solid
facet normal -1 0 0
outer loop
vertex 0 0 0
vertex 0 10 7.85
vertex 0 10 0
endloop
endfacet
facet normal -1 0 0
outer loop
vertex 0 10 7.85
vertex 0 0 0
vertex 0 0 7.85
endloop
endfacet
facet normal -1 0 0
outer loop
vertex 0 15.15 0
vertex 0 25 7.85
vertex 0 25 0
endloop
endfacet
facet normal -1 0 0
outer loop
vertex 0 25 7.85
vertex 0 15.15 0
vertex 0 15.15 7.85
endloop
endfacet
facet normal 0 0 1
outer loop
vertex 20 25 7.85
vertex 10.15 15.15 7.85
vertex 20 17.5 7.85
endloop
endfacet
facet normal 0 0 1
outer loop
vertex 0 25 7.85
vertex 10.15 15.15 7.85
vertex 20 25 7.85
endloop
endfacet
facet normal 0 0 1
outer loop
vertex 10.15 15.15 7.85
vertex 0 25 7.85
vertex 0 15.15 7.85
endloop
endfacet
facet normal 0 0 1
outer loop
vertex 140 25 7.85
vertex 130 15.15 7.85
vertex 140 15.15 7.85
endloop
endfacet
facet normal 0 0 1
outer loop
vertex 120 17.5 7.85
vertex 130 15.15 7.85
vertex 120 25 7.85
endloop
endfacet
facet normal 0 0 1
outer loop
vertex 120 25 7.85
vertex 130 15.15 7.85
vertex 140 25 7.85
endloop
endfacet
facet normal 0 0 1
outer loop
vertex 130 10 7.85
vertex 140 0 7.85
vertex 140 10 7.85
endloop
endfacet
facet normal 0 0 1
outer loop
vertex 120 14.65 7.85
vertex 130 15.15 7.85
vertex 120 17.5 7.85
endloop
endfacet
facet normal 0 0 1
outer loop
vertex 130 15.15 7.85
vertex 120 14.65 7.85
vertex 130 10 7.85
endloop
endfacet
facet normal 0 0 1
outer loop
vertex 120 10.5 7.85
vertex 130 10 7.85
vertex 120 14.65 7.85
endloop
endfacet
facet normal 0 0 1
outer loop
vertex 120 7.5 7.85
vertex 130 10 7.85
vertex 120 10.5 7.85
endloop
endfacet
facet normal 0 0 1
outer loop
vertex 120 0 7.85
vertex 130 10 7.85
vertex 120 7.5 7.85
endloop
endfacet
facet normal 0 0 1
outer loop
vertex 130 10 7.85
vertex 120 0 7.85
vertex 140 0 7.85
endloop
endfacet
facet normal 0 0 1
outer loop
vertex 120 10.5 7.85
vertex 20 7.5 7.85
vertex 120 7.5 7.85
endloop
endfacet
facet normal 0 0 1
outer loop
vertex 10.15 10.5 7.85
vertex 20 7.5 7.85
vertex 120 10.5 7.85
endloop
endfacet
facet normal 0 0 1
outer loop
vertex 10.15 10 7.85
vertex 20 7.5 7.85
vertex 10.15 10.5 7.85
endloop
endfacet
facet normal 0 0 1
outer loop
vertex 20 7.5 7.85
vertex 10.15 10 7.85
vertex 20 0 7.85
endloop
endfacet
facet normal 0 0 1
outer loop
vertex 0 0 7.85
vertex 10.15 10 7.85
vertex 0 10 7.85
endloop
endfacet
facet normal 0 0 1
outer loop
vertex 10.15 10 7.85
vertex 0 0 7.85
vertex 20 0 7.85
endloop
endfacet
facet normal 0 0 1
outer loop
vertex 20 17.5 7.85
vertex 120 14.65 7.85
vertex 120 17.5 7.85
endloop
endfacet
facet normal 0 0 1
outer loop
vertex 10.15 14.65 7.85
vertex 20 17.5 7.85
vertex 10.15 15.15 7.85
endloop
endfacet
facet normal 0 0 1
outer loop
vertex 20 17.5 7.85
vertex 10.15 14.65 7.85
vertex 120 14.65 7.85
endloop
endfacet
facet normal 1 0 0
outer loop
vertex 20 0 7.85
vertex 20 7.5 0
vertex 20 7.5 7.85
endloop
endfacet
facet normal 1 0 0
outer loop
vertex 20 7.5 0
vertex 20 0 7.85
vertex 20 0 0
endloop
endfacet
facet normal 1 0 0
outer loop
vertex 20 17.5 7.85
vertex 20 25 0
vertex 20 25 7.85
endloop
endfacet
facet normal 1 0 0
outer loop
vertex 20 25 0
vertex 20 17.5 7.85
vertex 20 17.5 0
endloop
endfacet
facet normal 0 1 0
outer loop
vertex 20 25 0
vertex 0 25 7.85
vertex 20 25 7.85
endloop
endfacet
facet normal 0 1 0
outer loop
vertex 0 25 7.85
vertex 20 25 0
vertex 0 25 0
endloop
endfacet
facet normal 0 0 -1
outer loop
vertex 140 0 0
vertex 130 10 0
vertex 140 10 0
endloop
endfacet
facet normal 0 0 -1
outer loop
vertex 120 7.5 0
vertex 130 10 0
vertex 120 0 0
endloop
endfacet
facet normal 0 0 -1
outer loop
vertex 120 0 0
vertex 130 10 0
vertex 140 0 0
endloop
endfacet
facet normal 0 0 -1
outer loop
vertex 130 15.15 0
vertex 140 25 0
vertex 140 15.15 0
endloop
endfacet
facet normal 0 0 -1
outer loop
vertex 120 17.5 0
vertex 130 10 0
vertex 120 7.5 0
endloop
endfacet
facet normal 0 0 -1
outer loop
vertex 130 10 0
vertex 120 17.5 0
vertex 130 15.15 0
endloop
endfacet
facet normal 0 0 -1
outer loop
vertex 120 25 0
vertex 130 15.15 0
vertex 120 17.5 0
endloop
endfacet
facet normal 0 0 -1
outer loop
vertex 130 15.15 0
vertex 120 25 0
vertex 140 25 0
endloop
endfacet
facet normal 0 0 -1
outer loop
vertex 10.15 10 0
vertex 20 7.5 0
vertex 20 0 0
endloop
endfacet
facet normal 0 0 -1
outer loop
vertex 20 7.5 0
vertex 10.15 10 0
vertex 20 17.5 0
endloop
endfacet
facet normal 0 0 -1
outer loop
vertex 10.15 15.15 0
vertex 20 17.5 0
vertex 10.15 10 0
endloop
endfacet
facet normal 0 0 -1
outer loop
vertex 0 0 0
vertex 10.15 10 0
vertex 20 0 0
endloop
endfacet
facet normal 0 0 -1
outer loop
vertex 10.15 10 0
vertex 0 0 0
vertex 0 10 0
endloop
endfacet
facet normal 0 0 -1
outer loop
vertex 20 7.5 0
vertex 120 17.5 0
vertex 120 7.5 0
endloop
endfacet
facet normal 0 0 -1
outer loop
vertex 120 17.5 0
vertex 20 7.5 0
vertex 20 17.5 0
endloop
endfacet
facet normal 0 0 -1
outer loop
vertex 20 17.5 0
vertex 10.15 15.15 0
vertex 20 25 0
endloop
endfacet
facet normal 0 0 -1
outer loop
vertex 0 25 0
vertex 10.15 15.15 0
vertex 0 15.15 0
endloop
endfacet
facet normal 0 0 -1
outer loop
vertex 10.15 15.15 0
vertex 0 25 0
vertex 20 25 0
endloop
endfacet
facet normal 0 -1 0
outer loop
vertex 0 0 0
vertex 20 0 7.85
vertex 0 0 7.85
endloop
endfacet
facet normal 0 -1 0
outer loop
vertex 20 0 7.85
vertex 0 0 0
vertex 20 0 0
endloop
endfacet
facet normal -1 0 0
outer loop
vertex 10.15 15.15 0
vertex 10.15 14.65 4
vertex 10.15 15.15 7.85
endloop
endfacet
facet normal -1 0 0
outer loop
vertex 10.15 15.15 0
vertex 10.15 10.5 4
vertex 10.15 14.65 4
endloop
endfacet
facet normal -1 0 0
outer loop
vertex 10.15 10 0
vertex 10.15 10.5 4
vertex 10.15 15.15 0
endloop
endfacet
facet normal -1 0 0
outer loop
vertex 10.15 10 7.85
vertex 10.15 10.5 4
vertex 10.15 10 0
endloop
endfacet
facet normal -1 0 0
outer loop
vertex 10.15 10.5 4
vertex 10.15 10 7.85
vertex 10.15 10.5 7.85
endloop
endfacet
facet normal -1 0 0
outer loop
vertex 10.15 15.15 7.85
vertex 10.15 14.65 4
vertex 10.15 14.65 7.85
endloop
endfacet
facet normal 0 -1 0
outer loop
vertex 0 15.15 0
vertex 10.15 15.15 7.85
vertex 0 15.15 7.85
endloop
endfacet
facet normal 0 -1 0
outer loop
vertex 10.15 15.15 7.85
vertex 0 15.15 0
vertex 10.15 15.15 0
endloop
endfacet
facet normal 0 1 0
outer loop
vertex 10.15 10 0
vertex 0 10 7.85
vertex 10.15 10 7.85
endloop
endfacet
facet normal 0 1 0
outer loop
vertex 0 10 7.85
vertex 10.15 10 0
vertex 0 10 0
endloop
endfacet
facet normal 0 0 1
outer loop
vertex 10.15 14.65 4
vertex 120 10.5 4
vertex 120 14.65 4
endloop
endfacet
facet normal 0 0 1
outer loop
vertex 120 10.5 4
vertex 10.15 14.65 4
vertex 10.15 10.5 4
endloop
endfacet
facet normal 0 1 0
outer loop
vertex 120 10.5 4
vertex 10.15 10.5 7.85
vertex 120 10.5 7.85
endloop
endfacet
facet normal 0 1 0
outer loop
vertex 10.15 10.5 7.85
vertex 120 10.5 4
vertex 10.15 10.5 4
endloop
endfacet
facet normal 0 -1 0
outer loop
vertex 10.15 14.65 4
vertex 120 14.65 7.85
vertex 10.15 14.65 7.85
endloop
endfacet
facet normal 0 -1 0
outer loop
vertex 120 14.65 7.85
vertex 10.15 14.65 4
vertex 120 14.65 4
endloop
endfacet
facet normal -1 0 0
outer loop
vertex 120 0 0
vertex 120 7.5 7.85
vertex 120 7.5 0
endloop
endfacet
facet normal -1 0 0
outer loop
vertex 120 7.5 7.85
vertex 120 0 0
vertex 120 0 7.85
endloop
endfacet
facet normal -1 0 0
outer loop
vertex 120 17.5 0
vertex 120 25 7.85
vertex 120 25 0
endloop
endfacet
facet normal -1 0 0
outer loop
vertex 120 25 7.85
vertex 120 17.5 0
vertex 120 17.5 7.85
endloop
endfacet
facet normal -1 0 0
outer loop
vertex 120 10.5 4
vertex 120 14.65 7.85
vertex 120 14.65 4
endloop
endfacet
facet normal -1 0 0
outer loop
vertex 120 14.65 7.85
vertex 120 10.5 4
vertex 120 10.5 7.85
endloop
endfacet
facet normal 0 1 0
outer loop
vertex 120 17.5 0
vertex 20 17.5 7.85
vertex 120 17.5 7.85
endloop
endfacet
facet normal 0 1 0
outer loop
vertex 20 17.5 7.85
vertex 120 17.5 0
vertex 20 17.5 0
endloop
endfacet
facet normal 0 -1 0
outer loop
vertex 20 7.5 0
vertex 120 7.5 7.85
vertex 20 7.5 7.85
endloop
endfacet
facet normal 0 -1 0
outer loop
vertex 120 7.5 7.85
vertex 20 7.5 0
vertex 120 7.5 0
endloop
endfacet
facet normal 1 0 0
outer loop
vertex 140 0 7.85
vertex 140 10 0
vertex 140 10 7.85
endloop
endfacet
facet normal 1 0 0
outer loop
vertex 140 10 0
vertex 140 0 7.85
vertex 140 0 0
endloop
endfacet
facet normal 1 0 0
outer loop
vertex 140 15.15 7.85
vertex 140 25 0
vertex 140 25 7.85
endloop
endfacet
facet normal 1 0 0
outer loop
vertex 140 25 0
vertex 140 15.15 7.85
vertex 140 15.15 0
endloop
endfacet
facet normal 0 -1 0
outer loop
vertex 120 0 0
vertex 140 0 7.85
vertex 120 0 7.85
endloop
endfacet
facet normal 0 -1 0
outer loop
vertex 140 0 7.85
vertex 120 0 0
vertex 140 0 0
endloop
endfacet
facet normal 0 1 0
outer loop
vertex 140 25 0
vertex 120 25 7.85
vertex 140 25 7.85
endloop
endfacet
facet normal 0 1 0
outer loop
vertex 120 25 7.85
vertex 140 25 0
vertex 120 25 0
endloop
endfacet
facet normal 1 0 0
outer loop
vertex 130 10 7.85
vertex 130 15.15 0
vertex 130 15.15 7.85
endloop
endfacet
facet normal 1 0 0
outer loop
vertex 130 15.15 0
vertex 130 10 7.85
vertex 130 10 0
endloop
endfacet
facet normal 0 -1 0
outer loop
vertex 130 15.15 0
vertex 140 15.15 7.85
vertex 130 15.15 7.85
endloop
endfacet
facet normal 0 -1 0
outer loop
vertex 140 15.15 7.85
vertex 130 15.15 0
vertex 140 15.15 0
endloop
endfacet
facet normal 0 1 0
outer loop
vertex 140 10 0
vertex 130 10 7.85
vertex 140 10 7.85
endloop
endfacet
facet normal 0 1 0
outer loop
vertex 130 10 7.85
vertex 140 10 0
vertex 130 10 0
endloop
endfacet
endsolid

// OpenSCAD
// file: config.scad
$fa = 1;
$fs = 0.2;

bearing_outer_dia = 22;
bearing_inner_dia = 10;
bearing_padding = 8;

casing_width = 10;

post_height = 100;
post_base_height = 20;
post_groove_width = 4;
post_groove_depth = 4;
post_groove_offset = 4;

base_margin = 5;
post_base_width = casing_width;
post_length = 2*(post_groove_offset + post_groove_depth + bearing_padding) + bearing_outer_dia;
post_separation = 210;

base_length = post_length + 2 * base_margin;
base_width = post_separation + 2 * base_margin;
base_height = 10;

// groove to groove distance
casing_length = 2*(post_groove_depth + bearing_padding) + bearing_outer_dia;
casing_height = 1.5 * bearing_padding + bearing_outer_dia;

roller_width = 200;
roller_padding = post_separation - roller_width;
roller_stem_protrusion = 20;
roller_groove_toroid_radius = 2;
roller_stem_depth = 50;
// main file
include <config.scad>

delta = 0.15;
// cube([post_length, post_base_width, post_base_height]);
// translate(v = [0, 0, post_base_height])
//     difference() {
//         cube([post_groove_offset+post_groove_depth, post_base_width, post_height - post_base_height]);
//         translate([post_groove_offset, (post_base_width-post_groove_width)/2, 0])
//             cube([post_groove_depth, post_groove_width, post_height - post_base_height]);
//     }

// translate(v = [post_length - post_groove_offset - post_groove_depth, 0, post_base_height])
//     difference() {
//         cube([post_groove_offset+post_groove_depth, post_base_width, post_height - post_base_height]);
//         translate([0, (post_base_width-post_groove_width)/2, 0])
//             cube([post_groove_depth, post_groove_width, post_height - post_base_height]);
//     }

groove_offset = casing_width-base_margin/2;
difference() {
    cube([2* base_height, casing_width + base_margin + casing_width, post_groove_offset + post_groove_depth-delta]);
    translate(v = [0, casing_width, 0])
        cube([base_height+delta, base_margin+delta, post_groove_offset + post_groove_depth+delta]);
    translate(v = [0, groove_offset + (casing_width - post_groove_width) / 2, post_groove_offset])
            cube([post_height+delta, post_groove_width+delta, post_groove_depth+delta]);
}
translate([2*base_height, 0, 0]) {
    translate([0, groove_offset, 0])
    difference() {
        cube([post_height, casing_width, post_groove_depth + post_groove_offset-delta]);
        translate(v = [0, (casing_width - post_groove_width) / 2, post_groove_offset])
            cube([post_height+delta, post_groove_width+delta, post_groove_depth+delta]);
    }
    translate(v = [post_height, 0, 0]){
        difference() {
            cube([2* base_height, casing_width + base_margin + casing_width, post_groove_offset + post_groove_depth-delta]);
            translate(v = [base_height, casing_width, 0])
                cube([base_height+delta, base_margin+delta, post_groove_offset + post_groove_depth+delta]);
        }
    }
}
